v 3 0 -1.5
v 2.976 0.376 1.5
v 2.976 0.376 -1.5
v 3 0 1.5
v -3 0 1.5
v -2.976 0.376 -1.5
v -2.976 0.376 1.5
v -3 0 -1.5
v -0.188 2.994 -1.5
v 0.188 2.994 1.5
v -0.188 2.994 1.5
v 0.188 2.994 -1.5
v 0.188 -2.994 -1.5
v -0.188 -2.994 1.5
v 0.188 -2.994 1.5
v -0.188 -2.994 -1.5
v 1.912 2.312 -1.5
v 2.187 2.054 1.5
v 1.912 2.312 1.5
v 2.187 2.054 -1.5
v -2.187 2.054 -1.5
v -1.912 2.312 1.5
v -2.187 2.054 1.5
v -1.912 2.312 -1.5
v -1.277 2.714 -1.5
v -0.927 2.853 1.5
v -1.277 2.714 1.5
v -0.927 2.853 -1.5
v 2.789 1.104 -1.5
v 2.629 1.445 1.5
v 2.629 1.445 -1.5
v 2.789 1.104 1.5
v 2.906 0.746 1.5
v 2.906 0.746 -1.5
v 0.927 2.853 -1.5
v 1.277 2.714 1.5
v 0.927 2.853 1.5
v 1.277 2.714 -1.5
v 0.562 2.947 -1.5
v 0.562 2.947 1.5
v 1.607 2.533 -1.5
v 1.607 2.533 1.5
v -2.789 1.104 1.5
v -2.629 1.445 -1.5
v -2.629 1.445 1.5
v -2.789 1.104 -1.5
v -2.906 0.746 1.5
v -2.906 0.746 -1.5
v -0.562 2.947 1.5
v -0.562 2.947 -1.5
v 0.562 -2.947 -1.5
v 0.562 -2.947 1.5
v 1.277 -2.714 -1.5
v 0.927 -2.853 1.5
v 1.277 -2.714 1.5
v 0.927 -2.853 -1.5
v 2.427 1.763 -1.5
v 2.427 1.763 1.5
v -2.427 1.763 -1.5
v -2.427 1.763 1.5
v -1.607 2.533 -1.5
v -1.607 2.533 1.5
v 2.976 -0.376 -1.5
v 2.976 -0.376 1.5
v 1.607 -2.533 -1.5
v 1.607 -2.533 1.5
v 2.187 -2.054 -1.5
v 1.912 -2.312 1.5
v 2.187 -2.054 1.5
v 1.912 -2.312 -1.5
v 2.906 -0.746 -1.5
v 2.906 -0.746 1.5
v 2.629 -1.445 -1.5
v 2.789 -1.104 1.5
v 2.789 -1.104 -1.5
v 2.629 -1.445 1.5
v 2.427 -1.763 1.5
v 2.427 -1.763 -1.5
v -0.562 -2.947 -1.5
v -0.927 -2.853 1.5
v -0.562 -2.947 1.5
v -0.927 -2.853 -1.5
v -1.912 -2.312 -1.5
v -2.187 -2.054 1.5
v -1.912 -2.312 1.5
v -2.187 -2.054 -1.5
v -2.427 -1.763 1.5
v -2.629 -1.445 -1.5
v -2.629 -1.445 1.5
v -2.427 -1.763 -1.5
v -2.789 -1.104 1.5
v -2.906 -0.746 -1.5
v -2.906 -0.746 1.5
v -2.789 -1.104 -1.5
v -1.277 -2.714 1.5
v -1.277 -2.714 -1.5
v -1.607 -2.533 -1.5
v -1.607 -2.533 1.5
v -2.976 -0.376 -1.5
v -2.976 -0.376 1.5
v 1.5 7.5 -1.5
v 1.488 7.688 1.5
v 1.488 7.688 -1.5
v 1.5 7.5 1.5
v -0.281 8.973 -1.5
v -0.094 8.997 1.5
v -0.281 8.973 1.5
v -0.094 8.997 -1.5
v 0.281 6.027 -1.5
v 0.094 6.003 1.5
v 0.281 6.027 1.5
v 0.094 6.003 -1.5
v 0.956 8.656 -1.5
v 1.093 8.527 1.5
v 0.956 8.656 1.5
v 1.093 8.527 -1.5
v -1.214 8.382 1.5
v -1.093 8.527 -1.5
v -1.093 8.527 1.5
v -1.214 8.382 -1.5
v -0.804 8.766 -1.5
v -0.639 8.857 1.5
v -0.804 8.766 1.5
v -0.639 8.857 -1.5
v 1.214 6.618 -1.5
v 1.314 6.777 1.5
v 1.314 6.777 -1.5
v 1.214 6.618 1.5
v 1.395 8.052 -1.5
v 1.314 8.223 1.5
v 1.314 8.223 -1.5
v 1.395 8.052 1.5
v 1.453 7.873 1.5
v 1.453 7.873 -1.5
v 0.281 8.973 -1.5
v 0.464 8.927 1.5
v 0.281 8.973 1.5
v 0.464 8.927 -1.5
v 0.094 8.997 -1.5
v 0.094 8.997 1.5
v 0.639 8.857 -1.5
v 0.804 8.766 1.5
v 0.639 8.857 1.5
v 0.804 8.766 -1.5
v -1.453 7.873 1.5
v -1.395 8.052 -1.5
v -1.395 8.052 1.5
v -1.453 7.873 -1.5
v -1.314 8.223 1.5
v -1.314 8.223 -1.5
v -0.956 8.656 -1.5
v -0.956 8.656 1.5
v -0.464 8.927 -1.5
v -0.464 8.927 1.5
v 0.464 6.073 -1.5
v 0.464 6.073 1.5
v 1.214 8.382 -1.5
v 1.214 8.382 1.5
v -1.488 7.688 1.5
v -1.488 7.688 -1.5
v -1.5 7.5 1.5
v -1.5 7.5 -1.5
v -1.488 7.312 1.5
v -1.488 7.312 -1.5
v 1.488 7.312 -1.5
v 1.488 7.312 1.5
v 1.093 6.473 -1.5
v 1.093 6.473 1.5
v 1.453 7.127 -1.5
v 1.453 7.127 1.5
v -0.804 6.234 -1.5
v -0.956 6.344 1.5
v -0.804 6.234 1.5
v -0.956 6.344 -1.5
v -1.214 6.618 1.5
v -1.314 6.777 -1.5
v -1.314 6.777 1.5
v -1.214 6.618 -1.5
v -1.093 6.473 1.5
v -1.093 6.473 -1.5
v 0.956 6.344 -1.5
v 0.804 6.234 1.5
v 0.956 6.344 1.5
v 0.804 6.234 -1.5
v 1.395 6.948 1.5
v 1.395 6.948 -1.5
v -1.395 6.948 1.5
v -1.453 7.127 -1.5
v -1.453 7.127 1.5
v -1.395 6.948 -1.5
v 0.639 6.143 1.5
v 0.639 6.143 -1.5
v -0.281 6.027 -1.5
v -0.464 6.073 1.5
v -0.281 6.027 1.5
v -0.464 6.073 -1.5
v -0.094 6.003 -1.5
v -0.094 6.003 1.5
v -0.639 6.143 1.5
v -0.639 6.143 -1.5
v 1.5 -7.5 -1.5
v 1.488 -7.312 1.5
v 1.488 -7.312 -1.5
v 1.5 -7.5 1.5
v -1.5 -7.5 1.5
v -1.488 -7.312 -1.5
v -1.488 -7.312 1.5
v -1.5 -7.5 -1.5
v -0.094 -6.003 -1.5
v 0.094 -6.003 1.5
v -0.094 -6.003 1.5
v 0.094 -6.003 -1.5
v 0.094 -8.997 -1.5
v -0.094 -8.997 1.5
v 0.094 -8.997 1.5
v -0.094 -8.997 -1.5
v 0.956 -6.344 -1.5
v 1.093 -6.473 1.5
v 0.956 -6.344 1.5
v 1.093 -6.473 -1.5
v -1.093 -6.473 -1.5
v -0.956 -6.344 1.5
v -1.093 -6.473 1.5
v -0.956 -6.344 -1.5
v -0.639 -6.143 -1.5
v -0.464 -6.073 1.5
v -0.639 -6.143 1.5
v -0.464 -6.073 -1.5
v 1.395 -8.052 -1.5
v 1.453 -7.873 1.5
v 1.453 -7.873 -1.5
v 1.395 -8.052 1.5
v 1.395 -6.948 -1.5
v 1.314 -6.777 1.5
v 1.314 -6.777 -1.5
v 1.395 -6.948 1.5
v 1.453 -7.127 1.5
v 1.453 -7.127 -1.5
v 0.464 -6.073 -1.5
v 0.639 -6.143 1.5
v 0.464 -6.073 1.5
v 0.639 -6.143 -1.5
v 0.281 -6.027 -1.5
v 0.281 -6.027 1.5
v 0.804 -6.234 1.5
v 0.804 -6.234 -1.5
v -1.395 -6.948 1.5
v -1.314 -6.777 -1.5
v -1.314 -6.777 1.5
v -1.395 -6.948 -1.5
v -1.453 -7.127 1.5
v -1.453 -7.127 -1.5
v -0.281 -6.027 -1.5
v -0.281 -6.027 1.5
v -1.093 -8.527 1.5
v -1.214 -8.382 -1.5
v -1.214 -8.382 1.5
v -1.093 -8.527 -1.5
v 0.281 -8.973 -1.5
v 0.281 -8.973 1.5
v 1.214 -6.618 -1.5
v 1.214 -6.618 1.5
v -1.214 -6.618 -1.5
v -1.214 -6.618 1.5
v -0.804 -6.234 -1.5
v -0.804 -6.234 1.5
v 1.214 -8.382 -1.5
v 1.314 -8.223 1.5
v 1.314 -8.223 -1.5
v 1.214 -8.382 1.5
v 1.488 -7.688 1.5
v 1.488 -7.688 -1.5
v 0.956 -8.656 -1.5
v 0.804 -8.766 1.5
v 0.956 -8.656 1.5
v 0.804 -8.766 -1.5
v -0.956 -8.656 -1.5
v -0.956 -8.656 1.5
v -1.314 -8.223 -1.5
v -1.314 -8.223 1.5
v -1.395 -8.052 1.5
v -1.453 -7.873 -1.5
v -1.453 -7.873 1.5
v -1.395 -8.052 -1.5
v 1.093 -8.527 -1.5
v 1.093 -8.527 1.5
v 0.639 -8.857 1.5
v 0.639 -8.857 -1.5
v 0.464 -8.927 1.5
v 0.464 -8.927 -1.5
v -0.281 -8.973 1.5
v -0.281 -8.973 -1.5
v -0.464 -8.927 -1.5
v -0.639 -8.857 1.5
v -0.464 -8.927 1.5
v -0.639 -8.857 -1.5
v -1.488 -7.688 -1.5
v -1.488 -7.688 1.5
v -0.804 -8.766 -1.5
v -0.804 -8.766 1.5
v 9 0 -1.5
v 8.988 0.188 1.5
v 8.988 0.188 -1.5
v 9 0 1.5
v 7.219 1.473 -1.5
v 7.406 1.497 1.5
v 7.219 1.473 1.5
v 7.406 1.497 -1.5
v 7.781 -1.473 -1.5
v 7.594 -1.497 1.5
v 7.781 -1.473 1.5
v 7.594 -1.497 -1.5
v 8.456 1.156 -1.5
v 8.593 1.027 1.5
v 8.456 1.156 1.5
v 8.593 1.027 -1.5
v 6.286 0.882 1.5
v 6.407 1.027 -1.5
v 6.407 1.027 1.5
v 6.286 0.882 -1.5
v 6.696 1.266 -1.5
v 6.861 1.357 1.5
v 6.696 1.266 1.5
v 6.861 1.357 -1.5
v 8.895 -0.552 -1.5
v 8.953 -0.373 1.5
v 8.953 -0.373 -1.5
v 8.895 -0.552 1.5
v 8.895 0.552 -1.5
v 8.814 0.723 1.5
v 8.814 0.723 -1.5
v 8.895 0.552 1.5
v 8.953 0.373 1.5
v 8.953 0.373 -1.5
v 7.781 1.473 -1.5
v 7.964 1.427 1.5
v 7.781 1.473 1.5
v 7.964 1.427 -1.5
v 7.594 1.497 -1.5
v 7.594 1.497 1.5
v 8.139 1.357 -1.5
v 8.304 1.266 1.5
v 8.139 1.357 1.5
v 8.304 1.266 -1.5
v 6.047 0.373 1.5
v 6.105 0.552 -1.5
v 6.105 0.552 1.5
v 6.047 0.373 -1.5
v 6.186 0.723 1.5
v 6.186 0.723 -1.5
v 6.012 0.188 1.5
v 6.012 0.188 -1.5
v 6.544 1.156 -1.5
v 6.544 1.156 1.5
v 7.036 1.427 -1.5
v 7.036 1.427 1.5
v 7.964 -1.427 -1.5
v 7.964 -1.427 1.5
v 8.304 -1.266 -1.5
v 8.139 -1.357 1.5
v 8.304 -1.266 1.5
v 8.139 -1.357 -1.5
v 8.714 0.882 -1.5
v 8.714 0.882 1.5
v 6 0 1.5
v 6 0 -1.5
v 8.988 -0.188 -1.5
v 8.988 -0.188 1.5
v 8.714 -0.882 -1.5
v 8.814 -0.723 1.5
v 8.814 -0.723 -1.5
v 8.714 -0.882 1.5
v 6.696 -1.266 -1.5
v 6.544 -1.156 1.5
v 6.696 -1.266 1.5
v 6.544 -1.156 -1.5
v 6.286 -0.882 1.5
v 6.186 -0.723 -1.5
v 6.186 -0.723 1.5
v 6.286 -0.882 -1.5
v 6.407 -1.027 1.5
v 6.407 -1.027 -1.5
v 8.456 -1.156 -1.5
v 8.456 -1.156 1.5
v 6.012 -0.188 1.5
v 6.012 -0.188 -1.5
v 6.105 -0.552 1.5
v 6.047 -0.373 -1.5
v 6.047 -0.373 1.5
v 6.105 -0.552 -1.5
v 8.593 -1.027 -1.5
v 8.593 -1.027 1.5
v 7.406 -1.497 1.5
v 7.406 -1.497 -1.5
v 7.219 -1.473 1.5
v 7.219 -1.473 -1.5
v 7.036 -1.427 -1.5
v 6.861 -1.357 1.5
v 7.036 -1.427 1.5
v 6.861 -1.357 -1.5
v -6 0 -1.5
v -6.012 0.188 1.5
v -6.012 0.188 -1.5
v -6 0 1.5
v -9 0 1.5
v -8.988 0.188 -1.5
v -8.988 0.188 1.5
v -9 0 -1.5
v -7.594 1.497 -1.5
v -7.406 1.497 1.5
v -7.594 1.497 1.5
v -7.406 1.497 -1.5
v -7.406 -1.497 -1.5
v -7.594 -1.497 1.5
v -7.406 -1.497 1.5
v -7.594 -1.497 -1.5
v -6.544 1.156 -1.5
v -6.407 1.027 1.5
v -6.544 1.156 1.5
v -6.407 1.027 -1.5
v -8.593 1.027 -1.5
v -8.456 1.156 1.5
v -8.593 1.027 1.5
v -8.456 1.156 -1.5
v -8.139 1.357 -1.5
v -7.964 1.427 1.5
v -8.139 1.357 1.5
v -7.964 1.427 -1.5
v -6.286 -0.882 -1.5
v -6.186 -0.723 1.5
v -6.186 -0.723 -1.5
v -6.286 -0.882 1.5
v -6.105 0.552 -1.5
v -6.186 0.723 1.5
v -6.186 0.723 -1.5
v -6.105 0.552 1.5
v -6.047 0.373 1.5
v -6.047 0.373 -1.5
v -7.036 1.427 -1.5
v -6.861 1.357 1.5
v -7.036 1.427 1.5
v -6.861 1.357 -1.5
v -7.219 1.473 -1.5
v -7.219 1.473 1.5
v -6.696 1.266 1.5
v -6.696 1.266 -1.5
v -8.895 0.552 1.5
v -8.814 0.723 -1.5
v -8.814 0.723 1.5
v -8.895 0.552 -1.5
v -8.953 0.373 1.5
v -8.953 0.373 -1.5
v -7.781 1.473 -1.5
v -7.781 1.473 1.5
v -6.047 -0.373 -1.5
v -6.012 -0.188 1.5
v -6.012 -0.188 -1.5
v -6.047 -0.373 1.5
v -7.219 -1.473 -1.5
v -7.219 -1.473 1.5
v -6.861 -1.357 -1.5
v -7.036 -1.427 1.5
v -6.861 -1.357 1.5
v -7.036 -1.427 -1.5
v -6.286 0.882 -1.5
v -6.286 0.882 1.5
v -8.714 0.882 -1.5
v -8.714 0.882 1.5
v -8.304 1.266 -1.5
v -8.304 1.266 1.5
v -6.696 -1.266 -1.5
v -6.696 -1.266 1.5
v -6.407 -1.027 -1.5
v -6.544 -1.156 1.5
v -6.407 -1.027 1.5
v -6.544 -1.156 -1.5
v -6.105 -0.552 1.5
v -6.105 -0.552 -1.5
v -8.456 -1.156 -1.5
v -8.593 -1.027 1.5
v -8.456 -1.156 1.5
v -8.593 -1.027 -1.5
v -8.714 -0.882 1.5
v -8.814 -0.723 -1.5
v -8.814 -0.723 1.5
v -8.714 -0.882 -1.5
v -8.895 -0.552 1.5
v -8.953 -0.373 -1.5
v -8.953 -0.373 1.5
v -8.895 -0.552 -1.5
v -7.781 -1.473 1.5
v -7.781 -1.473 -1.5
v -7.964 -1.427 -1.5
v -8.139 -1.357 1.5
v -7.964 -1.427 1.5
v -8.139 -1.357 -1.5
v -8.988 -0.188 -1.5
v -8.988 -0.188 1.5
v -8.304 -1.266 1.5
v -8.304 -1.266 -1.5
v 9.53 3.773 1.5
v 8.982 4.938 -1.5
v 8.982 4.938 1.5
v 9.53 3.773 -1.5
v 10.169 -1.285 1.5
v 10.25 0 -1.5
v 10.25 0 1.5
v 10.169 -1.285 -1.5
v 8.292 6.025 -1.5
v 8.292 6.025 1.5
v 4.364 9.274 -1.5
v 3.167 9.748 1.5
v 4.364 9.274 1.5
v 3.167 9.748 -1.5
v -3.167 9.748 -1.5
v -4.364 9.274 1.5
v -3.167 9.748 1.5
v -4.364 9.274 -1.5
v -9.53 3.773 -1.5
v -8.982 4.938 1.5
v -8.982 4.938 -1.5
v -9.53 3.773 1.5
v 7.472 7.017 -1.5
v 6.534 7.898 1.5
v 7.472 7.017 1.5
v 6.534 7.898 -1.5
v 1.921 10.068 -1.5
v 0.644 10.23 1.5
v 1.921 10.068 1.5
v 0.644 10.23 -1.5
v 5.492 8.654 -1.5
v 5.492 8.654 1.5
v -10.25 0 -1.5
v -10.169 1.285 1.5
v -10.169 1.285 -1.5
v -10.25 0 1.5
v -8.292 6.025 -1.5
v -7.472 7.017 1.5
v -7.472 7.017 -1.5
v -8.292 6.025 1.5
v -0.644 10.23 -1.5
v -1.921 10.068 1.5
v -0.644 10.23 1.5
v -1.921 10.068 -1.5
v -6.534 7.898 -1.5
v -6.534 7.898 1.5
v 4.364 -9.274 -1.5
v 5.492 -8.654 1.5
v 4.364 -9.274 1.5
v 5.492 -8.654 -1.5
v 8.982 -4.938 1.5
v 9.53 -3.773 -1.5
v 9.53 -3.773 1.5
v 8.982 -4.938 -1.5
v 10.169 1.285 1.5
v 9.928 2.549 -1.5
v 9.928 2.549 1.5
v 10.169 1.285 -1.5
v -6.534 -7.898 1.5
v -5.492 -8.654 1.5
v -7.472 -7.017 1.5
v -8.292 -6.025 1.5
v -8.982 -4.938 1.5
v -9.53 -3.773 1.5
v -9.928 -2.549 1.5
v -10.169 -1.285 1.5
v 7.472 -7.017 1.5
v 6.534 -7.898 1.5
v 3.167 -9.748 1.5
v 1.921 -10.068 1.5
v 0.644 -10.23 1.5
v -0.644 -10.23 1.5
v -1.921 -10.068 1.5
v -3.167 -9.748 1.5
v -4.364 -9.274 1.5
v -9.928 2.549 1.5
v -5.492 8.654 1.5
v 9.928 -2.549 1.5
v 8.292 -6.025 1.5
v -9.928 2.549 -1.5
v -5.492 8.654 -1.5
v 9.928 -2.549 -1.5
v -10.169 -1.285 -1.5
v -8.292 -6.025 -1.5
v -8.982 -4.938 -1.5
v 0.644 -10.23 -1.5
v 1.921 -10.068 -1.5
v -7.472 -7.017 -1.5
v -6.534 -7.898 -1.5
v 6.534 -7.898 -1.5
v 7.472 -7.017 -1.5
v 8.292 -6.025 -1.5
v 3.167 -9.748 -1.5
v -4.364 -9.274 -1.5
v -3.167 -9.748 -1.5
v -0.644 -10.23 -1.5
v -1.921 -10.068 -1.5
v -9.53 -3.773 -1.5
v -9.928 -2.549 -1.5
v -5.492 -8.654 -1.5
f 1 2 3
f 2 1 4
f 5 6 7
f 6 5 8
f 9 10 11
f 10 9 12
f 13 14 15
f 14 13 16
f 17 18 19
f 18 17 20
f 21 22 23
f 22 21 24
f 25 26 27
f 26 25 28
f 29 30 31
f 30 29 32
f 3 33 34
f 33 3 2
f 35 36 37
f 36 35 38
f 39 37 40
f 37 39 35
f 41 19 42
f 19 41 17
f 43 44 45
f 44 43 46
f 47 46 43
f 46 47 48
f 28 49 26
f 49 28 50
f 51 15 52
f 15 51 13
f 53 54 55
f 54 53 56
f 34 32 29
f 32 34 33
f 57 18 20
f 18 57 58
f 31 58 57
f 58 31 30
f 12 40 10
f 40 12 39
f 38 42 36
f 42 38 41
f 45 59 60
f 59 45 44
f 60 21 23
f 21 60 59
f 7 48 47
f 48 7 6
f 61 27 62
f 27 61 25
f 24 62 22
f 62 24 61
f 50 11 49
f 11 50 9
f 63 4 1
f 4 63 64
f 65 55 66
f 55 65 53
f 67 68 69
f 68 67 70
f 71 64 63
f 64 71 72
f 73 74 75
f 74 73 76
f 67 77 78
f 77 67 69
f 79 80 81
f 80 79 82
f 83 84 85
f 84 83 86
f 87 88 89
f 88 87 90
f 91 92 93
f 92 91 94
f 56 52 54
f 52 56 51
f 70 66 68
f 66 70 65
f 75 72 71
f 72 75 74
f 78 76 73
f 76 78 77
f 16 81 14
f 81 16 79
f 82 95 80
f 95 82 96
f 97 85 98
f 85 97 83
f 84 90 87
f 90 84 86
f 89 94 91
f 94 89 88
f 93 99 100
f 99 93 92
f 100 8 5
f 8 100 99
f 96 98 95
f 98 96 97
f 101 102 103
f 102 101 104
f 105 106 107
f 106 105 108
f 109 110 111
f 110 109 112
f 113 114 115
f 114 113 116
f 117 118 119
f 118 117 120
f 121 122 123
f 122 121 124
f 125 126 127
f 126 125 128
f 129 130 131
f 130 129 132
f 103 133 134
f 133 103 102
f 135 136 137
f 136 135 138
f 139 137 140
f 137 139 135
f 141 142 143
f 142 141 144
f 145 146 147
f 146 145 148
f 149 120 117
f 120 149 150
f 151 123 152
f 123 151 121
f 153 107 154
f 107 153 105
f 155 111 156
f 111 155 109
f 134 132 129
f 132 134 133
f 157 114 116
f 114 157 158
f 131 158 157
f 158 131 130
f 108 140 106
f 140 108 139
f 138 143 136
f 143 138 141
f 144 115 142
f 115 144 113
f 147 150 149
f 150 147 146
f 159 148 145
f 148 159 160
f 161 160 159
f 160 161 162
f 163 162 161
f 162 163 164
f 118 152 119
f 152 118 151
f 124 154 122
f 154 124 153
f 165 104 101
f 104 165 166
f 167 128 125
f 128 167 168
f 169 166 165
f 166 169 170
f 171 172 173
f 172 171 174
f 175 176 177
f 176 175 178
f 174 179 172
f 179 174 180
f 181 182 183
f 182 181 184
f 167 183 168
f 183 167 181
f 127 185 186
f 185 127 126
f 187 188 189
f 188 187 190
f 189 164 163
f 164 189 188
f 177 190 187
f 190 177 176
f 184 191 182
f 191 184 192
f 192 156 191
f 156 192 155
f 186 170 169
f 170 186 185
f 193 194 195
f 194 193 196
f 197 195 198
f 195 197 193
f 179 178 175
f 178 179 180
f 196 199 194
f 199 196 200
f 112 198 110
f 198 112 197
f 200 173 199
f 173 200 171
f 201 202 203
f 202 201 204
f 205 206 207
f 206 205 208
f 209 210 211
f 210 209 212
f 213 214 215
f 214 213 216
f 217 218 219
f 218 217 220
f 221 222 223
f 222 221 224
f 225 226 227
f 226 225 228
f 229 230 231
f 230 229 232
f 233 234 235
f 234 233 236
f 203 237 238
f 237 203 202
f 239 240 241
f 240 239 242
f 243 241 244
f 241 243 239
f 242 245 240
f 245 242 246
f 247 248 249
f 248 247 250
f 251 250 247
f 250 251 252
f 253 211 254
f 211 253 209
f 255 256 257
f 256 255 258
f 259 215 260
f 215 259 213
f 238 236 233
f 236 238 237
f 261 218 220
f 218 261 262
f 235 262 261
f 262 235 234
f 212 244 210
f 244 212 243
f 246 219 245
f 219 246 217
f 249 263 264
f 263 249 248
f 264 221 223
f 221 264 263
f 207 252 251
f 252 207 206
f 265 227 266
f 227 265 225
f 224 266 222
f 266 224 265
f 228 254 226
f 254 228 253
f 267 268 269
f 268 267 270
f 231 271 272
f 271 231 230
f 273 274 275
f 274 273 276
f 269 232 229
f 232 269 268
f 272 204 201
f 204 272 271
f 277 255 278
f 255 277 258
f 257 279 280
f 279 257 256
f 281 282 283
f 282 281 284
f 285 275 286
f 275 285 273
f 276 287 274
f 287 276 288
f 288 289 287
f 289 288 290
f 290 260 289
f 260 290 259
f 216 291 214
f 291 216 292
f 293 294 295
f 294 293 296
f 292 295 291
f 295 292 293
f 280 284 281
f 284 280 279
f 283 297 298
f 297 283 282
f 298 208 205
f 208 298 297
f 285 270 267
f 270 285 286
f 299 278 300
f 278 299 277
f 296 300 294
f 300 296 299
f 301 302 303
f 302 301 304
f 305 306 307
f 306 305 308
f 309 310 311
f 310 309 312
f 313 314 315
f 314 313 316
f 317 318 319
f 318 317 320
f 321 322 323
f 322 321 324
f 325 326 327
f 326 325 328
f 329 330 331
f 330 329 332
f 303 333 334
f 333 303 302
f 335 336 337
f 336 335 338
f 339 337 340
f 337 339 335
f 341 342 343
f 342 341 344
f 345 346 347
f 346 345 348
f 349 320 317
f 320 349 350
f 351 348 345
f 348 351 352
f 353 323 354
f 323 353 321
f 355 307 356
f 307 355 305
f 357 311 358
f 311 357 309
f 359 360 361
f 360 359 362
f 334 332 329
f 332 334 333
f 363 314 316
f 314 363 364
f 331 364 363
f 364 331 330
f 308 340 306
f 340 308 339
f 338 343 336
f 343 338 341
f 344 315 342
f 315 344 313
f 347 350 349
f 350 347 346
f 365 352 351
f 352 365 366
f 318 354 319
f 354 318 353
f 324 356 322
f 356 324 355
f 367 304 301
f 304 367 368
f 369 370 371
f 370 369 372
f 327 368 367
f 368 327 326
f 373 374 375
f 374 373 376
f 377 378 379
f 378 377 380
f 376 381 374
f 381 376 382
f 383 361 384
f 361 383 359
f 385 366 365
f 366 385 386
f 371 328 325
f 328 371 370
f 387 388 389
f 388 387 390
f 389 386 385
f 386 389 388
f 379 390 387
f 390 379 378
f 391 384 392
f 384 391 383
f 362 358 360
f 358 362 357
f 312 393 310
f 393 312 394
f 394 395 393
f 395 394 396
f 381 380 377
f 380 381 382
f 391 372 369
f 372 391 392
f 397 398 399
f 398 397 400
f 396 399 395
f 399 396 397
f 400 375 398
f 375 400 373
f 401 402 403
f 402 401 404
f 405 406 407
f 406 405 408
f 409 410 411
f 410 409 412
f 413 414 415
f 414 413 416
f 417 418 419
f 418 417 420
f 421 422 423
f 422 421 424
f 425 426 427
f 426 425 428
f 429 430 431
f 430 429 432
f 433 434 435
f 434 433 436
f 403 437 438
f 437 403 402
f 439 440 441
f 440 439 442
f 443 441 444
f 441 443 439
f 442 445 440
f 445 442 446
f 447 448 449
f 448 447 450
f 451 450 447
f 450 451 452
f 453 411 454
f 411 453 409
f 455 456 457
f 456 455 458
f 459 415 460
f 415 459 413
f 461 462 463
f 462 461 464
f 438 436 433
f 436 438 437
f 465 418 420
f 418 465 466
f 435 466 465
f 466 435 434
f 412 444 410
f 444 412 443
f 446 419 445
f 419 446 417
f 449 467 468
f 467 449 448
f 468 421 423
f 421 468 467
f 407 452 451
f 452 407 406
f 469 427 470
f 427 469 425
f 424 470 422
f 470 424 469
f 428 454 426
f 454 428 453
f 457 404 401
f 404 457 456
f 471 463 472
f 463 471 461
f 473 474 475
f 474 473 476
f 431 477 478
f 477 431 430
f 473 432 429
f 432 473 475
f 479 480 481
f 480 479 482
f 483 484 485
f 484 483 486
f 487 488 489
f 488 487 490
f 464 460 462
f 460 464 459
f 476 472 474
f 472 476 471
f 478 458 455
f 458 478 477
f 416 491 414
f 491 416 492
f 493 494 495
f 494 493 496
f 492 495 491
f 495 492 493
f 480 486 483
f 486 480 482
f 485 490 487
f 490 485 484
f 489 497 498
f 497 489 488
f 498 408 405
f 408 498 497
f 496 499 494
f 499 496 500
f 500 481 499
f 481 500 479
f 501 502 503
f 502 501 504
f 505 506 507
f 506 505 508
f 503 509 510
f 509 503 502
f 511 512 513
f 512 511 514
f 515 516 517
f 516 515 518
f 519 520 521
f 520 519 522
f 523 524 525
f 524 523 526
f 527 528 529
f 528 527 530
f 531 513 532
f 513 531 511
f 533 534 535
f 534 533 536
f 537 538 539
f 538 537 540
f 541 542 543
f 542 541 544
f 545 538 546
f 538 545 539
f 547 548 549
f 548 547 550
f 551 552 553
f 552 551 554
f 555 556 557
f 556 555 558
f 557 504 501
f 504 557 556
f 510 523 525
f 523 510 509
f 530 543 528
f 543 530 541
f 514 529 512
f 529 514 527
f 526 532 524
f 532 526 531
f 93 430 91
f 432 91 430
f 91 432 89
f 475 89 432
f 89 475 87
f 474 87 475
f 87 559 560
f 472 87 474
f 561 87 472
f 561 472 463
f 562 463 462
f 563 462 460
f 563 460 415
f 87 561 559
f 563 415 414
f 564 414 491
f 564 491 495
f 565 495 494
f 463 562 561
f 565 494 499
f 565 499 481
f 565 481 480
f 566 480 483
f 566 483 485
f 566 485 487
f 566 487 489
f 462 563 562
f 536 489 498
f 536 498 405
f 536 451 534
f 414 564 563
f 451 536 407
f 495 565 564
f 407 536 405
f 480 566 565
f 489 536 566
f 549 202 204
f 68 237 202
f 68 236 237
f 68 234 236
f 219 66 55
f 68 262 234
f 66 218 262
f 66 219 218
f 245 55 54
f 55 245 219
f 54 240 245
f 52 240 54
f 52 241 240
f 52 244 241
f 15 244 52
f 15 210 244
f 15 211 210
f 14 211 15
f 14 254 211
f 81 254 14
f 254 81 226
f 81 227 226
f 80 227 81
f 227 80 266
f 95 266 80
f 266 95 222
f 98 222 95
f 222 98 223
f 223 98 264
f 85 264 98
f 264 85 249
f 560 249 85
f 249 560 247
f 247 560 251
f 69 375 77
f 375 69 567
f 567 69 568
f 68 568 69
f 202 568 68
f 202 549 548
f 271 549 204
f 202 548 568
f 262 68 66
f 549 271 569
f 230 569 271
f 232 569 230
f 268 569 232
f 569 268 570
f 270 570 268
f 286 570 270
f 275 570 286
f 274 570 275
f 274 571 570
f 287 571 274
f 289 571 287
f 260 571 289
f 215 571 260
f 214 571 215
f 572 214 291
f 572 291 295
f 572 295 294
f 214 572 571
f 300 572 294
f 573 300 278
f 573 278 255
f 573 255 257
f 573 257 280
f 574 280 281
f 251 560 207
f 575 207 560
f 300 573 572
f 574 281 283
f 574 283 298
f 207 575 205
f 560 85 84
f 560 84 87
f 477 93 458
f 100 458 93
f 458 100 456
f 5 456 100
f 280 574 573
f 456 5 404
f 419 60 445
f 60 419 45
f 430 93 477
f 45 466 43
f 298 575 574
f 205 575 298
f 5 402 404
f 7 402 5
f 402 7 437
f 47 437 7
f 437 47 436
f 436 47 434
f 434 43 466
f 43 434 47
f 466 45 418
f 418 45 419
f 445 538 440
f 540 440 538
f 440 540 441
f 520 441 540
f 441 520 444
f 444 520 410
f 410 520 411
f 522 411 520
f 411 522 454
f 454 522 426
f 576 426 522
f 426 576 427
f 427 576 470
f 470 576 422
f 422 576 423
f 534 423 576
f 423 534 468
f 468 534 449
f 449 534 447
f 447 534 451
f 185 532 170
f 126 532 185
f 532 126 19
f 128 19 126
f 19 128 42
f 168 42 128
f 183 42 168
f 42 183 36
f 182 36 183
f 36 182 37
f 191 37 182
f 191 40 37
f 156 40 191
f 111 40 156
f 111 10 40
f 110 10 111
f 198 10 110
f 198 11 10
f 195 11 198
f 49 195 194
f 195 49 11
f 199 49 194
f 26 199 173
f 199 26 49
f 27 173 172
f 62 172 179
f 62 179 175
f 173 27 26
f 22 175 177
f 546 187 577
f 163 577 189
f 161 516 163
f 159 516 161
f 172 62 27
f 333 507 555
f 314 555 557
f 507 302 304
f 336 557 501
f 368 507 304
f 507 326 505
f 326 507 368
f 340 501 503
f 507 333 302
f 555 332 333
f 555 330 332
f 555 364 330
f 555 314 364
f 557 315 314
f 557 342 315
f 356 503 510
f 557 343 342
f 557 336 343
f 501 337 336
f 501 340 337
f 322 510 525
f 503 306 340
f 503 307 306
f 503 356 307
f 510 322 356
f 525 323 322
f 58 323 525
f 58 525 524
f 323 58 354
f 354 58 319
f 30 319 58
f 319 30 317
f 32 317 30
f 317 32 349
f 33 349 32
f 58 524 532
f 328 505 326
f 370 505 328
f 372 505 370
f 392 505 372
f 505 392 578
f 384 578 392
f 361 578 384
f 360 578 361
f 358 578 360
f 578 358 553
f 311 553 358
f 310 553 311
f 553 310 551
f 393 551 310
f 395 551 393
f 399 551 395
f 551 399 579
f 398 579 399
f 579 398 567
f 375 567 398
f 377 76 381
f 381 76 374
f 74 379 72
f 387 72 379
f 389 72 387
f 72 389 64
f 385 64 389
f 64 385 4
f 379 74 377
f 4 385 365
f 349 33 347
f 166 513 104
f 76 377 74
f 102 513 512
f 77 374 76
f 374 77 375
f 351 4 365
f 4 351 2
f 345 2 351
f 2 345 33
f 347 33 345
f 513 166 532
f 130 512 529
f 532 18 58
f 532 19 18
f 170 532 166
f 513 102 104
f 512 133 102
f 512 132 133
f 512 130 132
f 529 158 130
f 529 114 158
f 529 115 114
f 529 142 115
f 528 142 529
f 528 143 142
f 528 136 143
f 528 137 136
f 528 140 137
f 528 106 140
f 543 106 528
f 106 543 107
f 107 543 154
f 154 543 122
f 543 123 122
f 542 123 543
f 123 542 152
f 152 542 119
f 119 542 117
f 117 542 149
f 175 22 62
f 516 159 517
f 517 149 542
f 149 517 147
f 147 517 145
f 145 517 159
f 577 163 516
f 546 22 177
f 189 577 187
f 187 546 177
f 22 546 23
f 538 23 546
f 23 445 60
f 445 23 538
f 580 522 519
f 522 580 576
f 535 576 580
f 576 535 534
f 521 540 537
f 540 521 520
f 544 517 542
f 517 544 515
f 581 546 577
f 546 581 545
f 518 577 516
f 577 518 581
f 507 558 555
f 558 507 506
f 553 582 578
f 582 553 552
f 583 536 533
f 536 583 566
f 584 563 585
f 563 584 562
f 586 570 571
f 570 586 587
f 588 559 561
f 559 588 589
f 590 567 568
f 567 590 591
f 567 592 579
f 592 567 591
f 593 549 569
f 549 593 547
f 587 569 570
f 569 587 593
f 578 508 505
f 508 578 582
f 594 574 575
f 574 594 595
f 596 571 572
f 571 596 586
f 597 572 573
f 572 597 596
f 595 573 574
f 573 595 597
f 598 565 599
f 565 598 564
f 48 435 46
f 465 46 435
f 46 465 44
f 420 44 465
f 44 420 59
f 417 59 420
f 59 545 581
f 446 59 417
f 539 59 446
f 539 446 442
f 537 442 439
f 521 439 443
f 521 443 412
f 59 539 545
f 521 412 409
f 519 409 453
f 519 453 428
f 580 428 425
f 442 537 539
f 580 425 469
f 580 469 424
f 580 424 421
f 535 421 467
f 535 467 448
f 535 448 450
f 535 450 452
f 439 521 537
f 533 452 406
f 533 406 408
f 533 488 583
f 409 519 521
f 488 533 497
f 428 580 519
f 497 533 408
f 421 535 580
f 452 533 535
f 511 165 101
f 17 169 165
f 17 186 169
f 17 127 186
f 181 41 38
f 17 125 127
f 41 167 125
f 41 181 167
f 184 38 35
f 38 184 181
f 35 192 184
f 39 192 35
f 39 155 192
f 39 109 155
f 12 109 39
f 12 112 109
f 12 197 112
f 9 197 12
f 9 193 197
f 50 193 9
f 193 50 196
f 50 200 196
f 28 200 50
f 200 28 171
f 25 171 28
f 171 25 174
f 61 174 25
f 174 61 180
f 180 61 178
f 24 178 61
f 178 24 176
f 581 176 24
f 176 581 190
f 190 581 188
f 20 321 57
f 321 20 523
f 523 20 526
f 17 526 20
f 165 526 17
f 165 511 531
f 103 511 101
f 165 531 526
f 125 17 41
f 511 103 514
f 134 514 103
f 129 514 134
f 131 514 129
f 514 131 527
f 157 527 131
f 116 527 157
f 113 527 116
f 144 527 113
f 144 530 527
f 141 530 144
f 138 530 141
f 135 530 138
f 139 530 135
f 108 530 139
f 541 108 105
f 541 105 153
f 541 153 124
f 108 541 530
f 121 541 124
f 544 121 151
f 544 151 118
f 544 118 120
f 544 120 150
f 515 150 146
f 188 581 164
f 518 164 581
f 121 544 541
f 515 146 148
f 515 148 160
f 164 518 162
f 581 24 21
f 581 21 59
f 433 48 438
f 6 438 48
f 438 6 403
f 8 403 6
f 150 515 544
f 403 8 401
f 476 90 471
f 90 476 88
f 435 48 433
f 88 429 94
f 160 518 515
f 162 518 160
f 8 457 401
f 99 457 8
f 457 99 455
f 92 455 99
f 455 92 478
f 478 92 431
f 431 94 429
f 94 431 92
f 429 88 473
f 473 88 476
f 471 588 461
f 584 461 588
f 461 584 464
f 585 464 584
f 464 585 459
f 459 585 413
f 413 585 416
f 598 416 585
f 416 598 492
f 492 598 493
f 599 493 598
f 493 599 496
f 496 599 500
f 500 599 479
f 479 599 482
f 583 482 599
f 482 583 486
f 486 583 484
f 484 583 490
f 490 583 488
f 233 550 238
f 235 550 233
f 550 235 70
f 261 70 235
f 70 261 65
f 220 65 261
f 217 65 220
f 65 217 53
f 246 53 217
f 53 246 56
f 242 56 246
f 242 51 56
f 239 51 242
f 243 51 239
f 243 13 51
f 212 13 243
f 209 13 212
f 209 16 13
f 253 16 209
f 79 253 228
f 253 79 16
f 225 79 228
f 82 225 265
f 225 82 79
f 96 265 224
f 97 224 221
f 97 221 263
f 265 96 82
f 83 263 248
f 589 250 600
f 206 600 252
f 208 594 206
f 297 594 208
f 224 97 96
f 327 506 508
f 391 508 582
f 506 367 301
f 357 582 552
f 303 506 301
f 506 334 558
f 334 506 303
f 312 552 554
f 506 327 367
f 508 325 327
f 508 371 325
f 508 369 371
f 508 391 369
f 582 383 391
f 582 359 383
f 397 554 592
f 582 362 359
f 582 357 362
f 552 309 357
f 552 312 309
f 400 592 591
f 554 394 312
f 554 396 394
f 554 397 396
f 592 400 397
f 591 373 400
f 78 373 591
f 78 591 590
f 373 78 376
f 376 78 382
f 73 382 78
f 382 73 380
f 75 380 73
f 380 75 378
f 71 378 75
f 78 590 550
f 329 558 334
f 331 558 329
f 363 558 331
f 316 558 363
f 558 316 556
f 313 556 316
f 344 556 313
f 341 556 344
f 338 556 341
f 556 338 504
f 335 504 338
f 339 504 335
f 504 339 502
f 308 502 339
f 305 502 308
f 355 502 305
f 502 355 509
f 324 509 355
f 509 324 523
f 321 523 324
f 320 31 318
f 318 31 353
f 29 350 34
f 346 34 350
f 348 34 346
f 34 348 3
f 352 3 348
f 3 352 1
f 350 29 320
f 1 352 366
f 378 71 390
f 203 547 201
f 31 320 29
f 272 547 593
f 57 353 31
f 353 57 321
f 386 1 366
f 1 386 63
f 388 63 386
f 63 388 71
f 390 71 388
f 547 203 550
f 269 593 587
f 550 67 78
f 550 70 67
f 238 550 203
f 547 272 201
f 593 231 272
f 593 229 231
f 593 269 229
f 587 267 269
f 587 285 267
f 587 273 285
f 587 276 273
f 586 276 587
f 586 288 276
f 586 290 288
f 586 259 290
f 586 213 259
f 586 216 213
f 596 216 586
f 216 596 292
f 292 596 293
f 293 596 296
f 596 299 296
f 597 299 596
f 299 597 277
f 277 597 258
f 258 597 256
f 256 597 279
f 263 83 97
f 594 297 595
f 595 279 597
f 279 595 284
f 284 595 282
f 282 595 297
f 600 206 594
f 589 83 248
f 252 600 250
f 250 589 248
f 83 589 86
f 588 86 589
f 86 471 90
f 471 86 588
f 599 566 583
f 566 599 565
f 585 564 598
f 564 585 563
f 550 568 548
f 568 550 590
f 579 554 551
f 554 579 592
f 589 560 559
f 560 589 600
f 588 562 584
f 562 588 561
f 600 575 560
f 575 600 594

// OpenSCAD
$fn = 50;


difference() {
	union() {
		translate(v = [0, 0, -1.5000000000]) {
			rotate(a = [0, 0, 0]) {
				cylinder(h = 3, r = 10.2500000000);
			}
		}
	}
	union() {
		translate(v = [0, 0, -125.0000000000]) {
			rotate(a = [0, 0, 0]) {
				cylinder(h = 250, r = 3.0000000000);
			}
		}
		translate(v = [0, 7.5000000000, -125.0000000000]) {
			rotate(a = [0, 0, 0]) {
				cylinder(h = 250, r = 1.5000000000);
			}
		}
		translate(v = [0, -7.5000000000, -125.0000000000]) {
			rotate(a = [0, 0, 0]) {
				cylinder(h = 250, r = 1.5000000000);
			}
		}
		translate(v = [7.5000000000, 0, -125.0000000000]) {
			rotate(a = [0, 0, 0]) {
				cylinder(h = 250, r = 1.5000000000);
			}
		}
		translate(v = [-7.5000000000, 0, -125.0000000000]) {
			rotate(a = [0, 0, 0]) {
				cylinder(h = 250, r = 1.5000000000);
			}
		}
	}
}
